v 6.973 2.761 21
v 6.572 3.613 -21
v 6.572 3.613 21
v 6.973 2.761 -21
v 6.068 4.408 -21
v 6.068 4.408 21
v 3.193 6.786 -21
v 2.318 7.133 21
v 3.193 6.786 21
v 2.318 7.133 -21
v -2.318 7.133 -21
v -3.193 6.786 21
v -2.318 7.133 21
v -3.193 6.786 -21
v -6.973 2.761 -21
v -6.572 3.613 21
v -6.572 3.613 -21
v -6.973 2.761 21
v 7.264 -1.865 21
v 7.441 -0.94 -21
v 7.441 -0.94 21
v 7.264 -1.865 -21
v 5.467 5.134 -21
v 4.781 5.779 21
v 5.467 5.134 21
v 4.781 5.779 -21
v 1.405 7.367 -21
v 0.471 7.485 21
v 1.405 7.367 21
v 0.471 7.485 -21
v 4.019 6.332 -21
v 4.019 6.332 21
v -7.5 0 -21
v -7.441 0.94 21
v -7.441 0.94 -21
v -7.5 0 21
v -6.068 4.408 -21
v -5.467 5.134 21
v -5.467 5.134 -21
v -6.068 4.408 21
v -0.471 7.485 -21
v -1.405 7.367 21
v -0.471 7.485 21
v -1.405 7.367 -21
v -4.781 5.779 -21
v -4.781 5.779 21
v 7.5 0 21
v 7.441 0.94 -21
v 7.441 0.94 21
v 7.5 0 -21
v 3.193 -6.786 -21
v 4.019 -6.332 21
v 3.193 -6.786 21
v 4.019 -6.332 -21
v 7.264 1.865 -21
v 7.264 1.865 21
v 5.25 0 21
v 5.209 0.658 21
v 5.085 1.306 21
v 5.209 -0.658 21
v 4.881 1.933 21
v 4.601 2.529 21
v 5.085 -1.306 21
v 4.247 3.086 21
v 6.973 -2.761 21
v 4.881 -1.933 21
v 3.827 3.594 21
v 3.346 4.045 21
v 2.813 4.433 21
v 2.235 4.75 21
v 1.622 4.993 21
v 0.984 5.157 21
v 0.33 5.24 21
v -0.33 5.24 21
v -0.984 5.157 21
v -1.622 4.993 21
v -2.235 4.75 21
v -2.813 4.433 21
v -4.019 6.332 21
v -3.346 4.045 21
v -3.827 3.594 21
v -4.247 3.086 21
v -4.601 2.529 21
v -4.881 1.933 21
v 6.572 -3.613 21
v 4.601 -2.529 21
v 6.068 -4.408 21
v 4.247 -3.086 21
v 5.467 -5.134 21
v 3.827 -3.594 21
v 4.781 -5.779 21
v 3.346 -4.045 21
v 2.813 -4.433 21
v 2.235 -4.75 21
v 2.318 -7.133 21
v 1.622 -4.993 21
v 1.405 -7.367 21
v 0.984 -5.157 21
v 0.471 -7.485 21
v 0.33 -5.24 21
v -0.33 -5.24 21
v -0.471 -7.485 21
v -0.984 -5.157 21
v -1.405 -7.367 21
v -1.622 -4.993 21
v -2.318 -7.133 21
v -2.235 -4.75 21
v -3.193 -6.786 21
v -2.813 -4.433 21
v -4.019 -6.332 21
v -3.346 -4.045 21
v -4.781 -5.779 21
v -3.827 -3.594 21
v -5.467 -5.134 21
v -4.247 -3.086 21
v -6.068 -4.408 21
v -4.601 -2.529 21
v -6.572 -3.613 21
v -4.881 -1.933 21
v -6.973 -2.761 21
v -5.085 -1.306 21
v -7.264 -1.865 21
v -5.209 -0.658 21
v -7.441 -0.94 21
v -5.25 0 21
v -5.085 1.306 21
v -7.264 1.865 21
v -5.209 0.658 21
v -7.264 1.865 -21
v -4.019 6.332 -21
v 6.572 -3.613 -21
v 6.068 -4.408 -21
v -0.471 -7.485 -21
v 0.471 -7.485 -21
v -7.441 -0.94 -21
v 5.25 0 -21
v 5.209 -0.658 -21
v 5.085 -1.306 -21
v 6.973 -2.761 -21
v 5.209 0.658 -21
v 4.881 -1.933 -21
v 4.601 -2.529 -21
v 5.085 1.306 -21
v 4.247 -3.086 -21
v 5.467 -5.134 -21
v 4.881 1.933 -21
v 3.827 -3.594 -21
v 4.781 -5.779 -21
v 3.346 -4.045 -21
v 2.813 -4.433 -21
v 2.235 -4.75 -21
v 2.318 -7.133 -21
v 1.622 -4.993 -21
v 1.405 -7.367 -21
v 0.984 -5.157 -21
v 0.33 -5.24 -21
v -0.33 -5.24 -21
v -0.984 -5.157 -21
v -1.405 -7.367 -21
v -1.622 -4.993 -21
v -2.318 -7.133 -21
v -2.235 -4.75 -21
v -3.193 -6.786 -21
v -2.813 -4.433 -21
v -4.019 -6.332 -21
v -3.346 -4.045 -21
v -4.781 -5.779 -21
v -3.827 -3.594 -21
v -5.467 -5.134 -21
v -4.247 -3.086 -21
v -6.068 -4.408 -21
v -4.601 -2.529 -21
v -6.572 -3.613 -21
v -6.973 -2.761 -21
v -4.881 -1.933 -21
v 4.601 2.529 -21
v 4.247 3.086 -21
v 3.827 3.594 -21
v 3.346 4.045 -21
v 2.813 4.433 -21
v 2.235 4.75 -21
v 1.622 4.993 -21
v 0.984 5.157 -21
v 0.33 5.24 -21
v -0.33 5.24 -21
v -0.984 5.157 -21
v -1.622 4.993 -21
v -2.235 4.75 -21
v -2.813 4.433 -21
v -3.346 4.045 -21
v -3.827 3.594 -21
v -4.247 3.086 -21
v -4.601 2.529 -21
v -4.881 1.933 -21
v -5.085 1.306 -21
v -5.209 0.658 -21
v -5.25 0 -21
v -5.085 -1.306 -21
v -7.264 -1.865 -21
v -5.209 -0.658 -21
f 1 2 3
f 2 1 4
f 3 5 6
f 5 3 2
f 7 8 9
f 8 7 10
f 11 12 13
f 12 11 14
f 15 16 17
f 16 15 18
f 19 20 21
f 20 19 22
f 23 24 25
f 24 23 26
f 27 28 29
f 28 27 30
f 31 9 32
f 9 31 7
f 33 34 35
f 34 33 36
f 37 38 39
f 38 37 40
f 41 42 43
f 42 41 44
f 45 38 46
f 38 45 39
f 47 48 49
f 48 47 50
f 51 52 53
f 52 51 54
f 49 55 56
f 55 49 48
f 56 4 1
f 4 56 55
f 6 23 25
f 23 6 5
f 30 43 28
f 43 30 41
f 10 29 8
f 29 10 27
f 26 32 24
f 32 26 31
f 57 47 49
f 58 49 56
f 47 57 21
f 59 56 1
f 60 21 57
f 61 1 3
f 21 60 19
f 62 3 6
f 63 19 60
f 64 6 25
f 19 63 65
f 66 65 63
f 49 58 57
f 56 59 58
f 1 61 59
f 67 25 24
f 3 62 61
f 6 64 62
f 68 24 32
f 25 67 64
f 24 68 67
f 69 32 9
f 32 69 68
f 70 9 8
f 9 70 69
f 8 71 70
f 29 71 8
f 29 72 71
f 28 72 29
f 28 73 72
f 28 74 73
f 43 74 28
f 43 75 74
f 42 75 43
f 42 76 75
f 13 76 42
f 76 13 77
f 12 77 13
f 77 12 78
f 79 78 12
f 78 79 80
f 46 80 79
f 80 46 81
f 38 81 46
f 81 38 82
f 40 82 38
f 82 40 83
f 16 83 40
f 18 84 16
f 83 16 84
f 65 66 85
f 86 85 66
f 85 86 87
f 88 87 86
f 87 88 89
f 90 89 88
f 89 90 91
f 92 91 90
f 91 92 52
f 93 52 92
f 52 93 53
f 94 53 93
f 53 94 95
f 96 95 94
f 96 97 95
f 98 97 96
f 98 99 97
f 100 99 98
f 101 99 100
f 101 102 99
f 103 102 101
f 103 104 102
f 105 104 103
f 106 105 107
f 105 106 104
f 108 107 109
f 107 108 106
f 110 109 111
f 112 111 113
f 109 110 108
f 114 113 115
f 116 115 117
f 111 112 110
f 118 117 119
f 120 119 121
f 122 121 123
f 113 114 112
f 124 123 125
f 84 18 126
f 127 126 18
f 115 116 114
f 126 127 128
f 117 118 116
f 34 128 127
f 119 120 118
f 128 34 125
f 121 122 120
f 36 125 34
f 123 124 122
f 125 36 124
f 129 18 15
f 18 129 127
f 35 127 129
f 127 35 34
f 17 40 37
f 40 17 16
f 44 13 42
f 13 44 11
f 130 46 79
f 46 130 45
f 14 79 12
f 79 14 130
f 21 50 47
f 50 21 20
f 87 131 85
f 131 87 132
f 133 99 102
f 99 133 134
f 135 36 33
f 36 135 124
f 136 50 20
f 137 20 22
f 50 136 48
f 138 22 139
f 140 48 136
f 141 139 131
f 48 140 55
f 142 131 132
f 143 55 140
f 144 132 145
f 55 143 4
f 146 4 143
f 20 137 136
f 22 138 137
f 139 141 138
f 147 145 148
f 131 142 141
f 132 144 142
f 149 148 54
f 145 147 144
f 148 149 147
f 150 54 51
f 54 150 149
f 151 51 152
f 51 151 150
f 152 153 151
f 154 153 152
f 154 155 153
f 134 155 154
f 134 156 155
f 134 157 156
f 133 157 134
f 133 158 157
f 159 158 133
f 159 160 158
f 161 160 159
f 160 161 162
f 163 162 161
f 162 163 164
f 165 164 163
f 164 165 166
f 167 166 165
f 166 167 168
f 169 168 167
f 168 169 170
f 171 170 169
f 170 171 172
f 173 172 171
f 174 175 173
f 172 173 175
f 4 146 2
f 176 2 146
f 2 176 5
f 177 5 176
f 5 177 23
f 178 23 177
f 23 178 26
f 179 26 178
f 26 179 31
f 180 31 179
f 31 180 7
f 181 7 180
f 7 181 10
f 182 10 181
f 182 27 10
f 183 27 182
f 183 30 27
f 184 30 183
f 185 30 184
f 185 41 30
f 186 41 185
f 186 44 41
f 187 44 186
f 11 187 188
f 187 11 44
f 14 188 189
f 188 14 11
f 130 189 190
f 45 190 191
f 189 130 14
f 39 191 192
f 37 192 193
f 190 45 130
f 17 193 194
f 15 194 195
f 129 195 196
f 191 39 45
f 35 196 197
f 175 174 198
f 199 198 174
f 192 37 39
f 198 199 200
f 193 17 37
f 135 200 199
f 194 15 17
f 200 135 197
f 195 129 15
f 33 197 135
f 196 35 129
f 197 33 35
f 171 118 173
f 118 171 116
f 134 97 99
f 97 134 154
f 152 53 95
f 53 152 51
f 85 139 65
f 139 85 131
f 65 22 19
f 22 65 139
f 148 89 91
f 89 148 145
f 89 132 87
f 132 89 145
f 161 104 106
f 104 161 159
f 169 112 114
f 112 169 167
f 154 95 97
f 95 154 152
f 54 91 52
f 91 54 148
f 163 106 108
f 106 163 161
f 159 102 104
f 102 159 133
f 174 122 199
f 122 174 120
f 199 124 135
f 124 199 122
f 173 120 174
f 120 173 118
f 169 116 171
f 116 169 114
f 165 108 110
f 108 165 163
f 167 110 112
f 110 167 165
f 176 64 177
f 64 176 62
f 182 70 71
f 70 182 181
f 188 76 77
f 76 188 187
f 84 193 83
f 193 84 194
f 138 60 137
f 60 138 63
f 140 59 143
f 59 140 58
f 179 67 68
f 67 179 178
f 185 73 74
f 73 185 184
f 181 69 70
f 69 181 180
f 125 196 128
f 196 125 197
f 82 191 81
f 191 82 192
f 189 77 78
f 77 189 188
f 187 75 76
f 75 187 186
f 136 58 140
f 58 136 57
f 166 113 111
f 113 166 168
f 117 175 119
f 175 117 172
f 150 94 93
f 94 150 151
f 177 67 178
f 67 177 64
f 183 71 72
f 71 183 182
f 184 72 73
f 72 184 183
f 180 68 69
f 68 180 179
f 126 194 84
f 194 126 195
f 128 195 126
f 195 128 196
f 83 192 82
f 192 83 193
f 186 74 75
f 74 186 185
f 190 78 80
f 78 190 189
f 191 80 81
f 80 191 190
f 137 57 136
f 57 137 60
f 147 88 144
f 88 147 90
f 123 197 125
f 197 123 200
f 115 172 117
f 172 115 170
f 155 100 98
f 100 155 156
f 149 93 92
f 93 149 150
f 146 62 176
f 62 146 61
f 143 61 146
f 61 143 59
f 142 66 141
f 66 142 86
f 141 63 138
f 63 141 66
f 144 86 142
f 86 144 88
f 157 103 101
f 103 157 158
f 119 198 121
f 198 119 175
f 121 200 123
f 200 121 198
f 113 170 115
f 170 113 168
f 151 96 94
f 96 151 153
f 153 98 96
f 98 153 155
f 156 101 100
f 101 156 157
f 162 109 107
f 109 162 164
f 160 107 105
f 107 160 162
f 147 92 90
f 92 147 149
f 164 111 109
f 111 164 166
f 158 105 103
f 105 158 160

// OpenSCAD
$fn = 50;


difference() {
	union() {
		translate(v = [0, 0, -21.0000000000]) {
			cylinder(h = 42, r = 7.5000000000);
		}
	}
	union() {
		translate(v = [0, 0, -100.0000000000]) {
			cylinder(h = 200, r = 5.2500000000);
		}
	}
}
